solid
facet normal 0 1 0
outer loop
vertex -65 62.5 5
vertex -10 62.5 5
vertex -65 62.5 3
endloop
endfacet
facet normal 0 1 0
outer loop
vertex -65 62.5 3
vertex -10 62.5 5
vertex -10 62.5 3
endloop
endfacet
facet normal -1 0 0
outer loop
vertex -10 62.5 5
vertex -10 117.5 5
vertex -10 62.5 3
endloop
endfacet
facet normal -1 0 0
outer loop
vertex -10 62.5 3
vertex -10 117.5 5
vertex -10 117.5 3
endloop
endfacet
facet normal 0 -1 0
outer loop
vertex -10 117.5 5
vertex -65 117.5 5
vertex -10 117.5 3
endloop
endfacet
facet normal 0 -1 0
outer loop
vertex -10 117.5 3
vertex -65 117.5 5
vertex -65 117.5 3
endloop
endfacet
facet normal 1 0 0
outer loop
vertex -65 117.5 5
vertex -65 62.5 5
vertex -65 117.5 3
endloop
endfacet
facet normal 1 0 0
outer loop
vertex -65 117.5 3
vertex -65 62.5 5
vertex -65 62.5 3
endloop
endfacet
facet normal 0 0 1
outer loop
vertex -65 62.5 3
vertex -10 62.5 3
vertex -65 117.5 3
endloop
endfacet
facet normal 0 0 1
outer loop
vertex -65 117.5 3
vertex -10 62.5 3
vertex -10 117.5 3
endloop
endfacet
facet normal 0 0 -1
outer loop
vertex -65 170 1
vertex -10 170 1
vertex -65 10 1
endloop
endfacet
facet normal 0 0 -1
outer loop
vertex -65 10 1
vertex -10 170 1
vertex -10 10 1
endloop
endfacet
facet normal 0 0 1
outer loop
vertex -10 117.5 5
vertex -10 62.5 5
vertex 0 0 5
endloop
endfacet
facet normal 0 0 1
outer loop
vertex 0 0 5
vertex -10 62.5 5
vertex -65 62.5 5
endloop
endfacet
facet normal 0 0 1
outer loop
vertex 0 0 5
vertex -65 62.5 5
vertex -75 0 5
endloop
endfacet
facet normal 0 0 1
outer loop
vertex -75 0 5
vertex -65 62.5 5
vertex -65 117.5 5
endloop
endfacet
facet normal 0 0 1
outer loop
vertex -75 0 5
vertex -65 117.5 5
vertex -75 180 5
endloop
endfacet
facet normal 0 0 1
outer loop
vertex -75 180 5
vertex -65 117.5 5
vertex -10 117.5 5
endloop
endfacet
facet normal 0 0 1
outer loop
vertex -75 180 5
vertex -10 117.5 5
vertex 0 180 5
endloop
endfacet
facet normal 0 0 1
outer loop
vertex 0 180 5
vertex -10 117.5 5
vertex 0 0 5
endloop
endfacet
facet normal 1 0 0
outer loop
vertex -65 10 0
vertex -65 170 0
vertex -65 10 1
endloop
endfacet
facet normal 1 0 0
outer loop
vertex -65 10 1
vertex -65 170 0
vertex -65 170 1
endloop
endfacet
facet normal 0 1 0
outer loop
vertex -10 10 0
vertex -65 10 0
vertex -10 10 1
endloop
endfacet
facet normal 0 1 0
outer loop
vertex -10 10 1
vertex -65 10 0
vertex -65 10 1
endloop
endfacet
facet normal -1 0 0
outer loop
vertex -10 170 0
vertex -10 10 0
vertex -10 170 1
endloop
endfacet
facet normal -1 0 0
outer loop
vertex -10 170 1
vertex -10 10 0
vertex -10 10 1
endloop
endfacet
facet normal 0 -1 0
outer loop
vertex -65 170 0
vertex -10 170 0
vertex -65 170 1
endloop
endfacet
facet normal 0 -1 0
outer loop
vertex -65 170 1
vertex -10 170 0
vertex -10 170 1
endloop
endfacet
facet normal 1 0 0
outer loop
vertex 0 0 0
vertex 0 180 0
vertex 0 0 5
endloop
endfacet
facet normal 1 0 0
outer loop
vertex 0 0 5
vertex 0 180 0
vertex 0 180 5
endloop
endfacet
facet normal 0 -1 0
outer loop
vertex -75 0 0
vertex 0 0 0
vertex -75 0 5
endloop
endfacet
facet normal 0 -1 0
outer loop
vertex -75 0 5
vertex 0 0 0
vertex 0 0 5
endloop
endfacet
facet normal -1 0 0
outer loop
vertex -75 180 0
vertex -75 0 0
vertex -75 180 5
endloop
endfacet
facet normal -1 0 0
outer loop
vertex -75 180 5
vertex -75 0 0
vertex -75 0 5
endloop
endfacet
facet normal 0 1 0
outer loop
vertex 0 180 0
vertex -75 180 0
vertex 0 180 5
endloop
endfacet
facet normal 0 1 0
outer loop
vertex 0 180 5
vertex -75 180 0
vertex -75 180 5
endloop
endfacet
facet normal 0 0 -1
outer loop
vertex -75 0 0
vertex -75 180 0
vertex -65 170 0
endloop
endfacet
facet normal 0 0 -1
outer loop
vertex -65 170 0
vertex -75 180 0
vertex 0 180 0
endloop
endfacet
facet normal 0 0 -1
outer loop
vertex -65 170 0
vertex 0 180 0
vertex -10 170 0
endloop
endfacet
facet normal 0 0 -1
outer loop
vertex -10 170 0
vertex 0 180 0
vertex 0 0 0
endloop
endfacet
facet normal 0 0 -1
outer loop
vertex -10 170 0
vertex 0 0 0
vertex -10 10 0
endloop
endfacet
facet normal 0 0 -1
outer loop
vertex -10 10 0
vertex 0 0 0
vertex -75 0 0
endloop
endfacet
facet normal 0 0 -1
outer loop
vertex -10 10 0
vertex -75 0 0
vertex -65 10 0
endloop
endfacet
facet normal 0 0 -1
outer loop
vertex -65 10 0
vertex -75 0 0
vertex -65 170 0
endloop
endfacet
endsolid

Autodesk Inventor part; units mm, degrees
ref_plane "YZ Plane" through (0, 0, 0) normal (1, 0, 0) x (0, 1, 0)
ref_plane "XZ Plane" through (0, 0, 0) normal (0, 1, 0) x (-1, 0, 0)
ref_plane "XY Plane" through (0, 0, 0) normal (0, 0, 1) x (1, 0, 0)
sketch "Sketch1" plane through (0, 0, 0) normal (0, 0, 1) x (1, 0, 0)
  line L0 (0, 0) -> (-75, 0)
  line L1 (-75, 0) -> (-75, 180)
  line L2 (-75, 180) -> (0, 180)
  line L3 (0, 180) -> (0, 0)
  line L4 (-65, 170) -> (-10, 170)
  line L5 (-10, 10) -> (-65, 10)
  line L6 (-65, 10) -> (-65, 85)
  line L7 (-65, 95) -> (-65, 170)
  line L8 (-10, 170) -> (-10, 95)
  line L9 (-10, 85) -> (-10, 10)
  line L10 (-65, 85) -> (-65, 95)
  line L11 (-10, 95) -> (-10, 85)
  point P0 (-65, 90)
  point P1 (-10, 90)
  dimension "d35" = 75
  dimension "d36" = 180
  dimension "d37" = 55
  dimension "d38" = 160
extrude "Extrusion16" add sketch "Sketch1" along normal blind 1
sketch "Sketch12" plane through (0, 0, 1) normal (0, 0, 1) x (1, 0, 0)
  line L0 (0, 0) -> (0, 180) projected
  line L1 (-75, 180) -> (-75, 0) projected
  line L2 (0, 180) -> (-75, 180)
  line L3 (-75, 180) -> (-75, 0)
  line L4 (-75, 0) -> (0, 0)
  line L5 (0, 0) -> (0, 180)
extrude "Extrusion17" add sketch "Sketch12" along normal blind 4
sketch "Sketch13" plane through (0, 0, 5) normal (0, 0, 1) x (1, 0, 0)
  line L0 (-10, 117.5) -> (-65, 117.5)
  line L1 (-65, 117.5) -> (-65, 62.5)
  line L2 (-65, 62.5) -> (-10, 62.5)
  line L3 (-10, 62.5) -> (-10, 117.5)
  point P0 (0, 0)
  dimension "d99" = 55
  dimension "d100" = 55
extrude "Extrusion18" cut sketch "Sketch13" against normal blind 2
properties part number "Shoulder_Cube_TestFit_V1"
